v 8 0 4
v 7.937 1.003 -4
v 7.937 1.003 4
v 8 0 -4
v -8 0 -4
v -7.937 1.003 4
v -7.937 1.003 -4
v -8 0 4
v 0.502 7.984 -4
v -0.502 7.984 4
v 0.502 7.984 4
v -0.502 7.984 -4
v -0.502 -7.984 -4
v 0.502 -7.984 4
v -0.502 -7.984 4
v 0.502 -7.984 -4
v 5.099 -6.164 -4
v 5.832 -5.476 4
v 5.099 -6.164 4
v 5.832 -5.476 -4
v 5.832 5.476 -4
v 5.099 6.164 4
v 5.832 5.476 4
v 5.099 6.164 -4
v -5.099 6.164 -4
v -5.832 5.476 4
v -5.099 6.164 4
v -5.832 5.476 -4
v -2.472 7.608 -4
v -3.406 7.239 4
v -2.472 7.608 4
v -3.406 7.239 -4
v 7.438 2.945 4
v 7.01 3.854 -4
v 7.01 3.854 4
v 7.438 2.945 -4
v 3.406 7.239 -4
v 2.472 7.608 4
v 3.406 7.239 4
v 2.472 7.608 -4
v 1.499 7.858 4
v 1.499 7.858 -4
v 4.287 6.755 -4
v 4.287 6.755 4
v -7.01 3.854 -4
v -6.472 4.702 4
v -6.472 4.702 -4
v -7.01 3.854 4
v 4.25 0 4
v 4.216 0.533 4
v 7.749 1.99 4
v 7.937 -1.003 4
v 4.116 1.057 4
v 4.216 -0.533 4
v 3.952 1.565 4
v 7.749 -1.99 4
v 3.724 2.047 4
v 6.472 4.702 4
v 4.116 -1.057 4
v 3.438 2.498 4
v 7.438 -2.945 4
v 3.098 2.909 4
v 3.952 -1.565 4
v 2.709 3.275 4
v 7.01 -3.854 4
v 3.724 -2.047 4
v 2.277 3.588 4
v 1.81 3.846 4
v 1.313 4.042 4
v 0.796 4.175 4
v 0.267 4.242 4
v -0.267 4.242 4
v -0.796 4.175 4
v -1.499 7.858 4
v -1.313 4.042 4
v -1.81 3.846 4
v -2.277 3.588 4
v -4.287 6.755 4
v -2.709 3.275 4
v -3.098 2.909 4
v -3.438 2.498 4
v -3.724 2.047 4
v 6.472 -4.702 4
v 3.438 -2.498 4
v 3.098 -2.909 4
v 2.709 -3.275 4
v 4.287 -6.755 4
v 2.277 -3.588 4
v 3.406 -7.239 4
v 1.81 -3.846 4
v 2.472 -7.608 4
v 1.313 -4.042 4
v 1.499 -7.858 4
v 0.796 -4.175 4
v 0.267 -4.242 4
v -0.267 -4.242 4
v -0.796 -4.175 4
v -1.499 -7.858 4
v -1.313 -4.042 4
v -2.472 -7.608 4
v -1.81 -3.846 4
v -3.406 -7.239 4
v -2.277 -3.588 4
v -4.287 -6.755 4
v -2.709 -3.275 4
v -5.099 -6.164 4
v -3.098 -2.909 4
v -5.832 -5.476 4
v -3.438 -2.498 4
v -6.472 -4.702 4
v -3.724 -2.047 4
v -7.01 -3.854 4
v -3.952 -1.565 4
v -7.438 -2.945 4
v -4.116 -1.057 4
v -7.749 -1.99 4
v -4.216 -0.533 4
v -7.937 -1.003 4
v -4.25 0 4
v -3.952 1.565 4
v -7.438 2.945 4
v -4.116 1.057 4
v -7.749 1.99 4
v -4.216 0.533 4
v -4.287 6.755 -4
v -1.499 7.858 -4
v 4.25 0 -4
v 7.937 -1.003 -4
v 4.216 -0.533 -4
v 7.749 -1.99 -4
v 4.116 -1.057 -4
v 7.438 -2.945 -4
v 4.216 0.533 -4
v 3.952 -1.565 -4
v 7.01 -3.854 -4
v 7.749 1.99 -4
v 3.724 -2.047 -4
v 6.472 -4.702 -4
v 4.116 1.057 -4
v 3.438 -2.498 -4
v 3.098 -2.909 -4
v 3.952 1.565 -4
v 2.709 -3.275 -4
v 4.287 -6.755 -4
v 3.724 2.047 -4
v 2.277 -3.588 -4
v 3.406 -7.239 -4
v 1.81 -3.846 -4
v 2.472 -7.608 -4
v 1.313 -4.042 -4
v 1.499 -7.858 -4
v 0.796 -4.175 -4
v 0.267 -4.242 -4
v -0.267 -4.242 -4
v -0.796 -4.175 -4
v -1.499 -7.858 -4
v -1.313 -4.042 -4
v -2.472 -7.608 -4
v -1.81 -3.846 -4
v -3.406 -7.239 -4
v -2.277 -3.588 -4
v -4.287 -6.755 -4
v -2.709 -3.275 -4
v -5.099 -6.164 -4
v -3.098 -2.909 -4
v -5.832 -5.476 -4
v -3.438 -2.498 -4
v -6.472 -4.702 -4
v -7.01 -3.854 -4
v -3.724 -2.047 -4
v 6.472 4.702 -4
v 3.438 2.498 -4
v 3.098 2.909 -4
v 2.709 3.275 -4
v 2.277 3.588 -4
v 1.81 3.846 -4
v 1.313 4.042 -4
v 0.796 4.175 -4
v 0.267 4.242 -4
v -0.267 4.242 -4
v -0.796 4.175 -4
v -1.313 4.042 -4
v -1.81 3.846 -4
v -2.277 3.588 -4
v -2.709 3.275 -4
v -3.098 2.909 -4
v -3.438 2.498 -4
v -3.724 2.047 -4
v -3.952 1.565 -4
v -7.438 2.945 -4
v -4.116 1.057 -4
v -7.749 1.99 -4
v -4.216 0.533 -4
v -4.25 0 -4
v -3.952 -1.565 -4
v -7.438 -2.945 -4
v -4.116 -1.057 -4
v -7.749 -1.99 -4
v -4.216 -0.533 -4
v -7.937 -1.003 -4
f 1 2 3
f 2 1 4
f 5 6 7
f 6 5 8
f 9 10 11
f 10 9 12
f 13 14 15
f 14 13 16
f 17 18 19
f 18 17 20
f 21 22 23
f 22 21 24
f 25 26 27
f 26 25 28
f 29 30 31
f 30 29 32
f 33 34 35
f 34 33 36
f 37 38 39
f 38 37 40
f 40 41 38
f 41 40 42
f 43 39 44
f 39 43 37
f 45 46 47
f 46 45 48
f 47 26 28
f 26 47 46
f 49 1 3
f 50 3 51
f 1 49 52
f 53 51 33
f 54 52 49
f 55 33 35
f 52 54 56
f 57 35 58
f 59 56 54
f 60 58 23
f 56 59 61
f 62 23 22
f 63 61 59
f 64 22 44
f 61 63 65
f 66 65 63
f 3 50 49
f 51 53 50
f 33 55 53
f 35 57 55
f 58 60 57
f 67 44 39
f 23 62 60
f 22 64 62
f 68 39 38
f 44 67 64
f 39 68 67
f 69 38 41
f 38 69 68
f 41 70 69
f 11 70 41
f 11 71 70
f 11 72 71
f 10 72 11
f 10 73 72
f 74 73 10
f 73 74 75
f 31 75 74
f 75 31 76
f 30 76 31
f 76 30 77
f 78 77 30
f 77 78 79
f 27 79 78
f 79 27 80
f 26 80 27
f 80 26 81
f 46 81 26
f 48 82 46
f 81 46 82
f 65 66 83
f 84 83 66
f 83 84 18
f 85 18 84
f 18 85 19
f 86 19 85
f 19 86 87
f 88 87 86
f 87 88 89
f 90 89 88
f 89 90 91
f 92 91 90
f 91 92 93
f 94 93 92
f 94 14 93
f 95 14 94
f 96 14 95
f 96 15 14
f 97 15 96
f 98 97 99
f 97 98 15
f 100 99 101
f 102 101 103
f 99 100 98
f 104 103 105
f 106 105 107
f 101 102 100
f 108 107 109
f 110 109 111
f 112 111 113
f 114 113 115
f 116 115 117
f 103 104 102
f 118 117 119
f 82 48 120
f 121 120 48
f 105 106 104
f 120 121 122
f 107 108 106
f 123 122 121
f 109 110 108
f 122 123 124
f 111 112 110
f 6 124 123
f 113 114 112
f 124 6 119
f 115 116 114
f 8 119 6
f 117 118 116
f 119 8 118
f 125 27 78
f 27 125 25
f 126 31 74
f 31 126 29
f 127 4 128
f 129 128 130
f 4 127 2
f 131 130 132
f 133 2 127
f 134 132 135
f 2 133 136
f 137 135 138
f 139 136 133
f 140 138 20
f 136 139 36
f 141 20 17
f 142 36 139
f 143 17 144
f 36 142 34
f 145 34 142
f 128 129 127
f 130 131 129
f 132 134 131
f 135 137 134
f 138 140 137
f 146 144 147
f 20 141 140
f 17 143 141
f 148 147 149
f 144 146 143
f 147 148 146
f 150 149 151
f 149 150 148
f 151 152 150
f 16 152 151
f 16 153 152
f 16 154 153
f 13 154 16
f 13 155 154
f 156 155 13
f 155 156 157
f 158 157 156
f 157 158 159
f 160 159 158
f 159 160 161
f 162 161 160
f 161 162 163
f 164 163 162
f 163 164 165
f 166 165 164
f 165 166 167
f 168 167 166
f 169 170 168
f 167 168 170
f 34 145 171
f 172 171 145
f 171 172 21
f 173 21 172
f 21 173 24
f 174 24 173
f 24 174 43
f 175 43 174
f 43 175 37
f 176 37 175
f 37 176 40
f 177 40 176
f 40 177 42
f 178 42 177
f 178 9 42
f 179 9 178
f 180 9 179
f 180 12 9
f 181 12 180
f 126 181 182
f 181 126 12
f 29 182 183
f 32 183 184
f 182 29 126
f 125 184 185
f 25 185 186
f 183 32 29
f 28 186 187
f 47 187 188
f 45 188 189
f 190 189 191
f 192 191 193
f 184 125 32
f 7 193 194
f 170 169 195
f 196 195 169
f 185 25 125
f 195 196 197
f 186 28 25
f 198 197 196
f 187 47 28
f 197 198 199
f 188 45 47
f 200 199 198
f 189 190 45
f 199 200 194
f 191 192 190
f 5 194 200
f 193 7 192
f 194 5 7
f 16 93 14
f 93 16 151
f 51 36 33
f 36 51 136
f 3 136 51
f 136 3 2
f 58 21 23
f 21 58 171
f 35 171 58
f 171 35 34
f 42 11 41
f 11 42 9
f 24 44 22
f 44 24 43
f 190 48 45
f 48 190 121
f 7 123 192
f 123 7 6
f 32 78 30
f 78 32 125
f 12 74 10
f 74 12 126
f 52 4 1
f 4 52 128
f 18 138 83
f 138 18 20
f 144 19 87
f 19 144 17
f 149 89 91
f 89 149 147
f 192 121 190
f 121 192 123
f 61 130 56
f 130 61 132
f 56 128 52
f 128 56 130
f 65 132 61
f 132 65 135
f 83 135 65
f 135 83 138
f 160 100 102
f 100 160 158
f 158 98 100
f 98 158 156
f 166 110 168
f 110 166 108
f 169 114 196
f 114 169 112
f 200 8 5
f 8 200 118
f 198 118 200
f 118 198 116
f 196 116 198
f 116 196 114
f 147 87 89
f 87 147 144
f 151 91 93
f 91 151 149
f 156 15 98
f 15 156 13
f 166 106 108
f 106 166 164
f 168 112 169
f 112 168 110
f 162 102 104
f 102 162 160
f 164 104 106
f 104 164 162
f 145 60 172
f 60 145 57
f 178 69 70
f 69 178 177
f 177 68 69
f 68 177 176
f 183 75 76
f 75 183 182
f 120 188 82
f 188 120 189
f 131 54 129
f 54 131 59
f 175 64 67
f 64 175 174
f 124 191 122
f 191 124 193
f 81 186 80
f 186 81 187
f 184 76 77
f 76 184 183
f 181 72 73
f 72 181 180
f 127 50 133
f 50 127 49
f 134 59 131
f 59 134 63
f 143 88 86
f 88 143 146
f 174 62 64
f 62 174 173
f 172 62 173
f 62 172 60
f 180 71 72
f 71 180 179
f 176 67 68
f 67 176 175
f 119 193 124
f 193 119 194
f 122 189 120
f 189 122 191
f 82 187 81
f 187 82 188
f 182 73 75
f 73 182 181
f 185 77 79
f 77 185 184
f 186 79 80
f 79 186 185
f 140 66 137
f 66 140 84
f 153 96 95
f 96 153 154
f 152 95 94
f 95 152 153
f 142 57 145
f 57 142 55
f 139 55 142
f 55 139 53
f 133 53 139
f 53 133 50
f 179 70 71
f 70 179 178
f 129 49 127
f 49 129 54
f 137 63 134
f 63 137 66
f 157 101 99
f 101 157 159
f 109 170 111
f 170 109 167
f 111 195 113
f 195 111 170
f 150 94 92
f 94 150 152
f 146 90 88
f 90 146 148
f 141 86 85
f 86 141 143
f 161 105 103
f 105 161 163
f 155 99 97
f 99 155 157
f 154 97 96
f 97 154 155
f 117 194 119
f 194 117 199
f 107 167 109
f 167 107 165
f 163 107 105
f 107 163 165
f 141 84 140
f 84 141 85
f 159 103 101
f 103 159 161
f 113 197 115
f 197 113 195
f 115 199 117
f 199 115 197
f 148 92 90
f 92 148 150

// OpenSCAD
$fn = 50;


difference() {
	union() {
		translate(v = [0, 0, -4.0000000000]) {
			cylinder(h = 8, r = 8.0000000000);
		}
	}
	union() {
		translate(v = [0, 0, -100.0000000000]) {
			cylinder(h = 200, r = 4.2500000000);
		}
	}
}
